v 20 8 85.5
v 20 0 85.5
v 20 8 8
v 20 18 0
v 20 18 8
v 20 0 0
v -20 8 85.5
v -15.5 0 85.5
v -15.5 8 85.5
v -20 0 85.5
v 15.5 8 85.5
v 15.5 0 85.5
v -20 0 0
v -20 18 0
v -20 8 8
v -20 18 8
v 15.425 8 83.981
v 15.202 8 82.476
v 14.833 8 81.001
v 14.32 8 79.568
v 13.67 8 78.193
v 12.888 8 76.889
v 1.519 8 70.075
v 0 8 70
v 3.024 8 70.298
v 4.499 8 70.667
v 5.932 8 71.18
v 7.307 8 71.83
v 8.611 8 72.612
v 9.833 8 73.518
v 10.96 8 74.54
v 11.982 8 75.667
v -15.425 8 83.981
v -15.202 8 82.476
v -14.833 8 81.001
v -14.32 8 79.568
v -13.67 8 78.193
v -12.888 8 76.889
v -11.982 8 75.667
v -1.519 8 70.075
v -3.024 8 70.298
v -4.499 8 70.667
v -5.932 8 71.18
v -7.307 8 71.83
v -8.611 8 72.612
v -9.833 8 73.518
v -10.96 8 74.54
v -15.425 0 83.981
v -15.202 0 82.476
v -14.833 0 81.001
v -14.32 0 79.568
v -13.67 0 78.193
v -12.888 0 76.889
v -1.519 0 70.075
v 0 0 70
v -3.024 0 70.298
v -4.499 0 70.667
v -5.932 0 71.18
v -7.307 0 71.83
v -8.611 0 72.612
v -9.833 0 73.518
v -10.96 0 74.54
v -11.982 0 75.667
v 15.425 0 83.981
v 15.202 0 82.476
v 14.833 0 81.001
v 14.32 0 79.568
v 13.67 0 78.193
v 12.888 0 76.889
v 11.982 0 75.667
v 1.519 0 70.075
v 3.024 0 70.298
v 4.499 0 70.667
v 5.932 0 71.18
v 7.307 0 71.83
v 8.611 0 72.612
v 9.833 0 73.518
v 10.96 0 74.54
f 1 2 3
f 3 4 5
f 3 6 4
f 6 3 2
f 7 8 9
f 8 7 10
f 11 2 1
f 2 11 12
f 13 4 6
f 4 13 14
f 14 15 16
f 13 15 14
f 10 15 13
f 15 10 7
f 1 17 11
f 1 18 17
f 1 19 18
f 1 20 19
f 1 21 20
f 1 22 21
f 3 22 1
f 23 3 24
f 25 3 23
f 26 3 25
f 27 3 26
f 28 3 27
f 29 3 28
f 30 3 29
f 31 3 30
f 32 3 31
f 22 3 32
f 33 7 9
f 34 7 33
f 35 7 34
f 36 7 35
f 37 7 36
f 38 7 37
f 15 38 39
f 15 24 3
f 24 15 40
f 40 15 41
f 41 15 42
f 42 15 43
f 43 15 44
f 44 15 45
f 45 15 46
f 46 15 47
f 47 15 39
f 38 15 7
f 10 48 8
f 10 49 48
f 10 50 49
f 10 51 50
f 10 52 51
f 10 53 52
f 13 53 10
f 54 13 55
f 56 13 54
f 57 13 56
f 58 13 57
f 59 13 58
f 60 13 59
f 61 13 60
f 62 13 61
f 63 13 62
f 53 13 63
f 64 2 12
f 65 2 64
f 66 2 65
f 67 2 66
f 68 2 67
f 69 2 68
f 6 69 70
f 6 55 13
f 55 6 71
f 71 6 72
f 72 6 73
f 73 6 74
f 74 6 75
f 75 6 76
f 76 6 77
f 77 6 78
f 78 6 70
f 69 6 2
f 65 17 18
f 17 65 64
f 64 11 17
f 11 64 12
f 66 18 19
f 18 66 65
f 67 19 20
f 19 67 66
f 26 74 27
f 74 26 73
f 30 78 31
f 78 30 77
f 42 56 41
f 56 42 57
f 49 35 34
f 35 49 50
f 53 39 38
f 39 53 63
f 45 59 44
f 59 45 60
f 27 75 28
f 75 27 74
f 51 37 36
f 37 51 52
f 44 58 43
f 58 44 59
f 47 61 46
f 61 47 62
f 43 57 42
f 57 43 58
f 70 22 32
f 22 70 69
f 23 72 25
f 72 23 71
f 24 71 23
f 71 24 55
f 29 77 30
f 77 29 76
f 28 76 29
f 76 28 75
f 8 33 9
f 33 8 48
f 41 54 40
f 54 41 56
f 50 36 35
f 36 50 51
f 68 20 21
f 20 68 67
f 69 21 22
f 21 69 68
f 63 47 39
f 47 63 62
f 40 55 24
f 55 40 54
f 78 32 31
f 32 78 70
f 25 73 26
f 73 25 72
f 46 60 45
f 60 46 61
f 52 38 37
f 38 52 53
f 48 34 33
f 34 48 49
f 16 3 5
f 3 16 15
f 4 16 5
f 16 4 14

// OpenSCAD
// Curtain Rod Stand - Flat Bracket Style
// Flat piece against window frame with half-circle cutout for rod
// PRINT: Flat on bed, no supports needed

/* [Rod Dimensions] */
rod_diameter = 30;       // 3cm rod diameter (mm)
rod_clearance = 1;       // Extra space around rod

/* [Stand Dimensions] */
// Bottom of U at 70mm, so stand_height = 70 + rod_radius
stand_height = 70 + (30 + 1)/2;  // ~85.5mm, puts bottom of U at 70mm
stand_width = 40;        // Width of the flat piece
thickness = 8;          // 8mm thick

/* [Foot Dimensions] */
foot_depth = 10;         // How far foot extends forward
foot_height = 8;         // Same as thickness

/* [Print Settings] */
$fn = 64;

// Derived
rod_r = (rod_diameter + rod_clearance) / 2;

// Main assembly
union() {
    // Main flat vertical piece with semicircle cutout
    difference() {
        // Flat rectangle
        translate([-stand_width/2, 0, 0])
            cube([stand_width, thickness, stand_height]);

        // Semicircle cutout at top
        translate([0, -1, stand_height])
            rotate([-90, 0, 0])
                cylinder(r=rod_r, h=thickness + 2);
    }

    // Foot extending forward (same direction as rod), full width
    translate([-stand_width/2, thickness, 0])
        cube([stand_width, foot_depth, foot_height]);
}

// Info
echo(str("Stand height: ", stand_height, "mm (", stand_height/25.4, "\")"));
echo(str("Rod cutout diameter: ", rod_r*2, "mm"));
echo(str("Thickness: ", thickness, "mm"));
echo(str("Foot depth: ", foot_depth, "mm"));
